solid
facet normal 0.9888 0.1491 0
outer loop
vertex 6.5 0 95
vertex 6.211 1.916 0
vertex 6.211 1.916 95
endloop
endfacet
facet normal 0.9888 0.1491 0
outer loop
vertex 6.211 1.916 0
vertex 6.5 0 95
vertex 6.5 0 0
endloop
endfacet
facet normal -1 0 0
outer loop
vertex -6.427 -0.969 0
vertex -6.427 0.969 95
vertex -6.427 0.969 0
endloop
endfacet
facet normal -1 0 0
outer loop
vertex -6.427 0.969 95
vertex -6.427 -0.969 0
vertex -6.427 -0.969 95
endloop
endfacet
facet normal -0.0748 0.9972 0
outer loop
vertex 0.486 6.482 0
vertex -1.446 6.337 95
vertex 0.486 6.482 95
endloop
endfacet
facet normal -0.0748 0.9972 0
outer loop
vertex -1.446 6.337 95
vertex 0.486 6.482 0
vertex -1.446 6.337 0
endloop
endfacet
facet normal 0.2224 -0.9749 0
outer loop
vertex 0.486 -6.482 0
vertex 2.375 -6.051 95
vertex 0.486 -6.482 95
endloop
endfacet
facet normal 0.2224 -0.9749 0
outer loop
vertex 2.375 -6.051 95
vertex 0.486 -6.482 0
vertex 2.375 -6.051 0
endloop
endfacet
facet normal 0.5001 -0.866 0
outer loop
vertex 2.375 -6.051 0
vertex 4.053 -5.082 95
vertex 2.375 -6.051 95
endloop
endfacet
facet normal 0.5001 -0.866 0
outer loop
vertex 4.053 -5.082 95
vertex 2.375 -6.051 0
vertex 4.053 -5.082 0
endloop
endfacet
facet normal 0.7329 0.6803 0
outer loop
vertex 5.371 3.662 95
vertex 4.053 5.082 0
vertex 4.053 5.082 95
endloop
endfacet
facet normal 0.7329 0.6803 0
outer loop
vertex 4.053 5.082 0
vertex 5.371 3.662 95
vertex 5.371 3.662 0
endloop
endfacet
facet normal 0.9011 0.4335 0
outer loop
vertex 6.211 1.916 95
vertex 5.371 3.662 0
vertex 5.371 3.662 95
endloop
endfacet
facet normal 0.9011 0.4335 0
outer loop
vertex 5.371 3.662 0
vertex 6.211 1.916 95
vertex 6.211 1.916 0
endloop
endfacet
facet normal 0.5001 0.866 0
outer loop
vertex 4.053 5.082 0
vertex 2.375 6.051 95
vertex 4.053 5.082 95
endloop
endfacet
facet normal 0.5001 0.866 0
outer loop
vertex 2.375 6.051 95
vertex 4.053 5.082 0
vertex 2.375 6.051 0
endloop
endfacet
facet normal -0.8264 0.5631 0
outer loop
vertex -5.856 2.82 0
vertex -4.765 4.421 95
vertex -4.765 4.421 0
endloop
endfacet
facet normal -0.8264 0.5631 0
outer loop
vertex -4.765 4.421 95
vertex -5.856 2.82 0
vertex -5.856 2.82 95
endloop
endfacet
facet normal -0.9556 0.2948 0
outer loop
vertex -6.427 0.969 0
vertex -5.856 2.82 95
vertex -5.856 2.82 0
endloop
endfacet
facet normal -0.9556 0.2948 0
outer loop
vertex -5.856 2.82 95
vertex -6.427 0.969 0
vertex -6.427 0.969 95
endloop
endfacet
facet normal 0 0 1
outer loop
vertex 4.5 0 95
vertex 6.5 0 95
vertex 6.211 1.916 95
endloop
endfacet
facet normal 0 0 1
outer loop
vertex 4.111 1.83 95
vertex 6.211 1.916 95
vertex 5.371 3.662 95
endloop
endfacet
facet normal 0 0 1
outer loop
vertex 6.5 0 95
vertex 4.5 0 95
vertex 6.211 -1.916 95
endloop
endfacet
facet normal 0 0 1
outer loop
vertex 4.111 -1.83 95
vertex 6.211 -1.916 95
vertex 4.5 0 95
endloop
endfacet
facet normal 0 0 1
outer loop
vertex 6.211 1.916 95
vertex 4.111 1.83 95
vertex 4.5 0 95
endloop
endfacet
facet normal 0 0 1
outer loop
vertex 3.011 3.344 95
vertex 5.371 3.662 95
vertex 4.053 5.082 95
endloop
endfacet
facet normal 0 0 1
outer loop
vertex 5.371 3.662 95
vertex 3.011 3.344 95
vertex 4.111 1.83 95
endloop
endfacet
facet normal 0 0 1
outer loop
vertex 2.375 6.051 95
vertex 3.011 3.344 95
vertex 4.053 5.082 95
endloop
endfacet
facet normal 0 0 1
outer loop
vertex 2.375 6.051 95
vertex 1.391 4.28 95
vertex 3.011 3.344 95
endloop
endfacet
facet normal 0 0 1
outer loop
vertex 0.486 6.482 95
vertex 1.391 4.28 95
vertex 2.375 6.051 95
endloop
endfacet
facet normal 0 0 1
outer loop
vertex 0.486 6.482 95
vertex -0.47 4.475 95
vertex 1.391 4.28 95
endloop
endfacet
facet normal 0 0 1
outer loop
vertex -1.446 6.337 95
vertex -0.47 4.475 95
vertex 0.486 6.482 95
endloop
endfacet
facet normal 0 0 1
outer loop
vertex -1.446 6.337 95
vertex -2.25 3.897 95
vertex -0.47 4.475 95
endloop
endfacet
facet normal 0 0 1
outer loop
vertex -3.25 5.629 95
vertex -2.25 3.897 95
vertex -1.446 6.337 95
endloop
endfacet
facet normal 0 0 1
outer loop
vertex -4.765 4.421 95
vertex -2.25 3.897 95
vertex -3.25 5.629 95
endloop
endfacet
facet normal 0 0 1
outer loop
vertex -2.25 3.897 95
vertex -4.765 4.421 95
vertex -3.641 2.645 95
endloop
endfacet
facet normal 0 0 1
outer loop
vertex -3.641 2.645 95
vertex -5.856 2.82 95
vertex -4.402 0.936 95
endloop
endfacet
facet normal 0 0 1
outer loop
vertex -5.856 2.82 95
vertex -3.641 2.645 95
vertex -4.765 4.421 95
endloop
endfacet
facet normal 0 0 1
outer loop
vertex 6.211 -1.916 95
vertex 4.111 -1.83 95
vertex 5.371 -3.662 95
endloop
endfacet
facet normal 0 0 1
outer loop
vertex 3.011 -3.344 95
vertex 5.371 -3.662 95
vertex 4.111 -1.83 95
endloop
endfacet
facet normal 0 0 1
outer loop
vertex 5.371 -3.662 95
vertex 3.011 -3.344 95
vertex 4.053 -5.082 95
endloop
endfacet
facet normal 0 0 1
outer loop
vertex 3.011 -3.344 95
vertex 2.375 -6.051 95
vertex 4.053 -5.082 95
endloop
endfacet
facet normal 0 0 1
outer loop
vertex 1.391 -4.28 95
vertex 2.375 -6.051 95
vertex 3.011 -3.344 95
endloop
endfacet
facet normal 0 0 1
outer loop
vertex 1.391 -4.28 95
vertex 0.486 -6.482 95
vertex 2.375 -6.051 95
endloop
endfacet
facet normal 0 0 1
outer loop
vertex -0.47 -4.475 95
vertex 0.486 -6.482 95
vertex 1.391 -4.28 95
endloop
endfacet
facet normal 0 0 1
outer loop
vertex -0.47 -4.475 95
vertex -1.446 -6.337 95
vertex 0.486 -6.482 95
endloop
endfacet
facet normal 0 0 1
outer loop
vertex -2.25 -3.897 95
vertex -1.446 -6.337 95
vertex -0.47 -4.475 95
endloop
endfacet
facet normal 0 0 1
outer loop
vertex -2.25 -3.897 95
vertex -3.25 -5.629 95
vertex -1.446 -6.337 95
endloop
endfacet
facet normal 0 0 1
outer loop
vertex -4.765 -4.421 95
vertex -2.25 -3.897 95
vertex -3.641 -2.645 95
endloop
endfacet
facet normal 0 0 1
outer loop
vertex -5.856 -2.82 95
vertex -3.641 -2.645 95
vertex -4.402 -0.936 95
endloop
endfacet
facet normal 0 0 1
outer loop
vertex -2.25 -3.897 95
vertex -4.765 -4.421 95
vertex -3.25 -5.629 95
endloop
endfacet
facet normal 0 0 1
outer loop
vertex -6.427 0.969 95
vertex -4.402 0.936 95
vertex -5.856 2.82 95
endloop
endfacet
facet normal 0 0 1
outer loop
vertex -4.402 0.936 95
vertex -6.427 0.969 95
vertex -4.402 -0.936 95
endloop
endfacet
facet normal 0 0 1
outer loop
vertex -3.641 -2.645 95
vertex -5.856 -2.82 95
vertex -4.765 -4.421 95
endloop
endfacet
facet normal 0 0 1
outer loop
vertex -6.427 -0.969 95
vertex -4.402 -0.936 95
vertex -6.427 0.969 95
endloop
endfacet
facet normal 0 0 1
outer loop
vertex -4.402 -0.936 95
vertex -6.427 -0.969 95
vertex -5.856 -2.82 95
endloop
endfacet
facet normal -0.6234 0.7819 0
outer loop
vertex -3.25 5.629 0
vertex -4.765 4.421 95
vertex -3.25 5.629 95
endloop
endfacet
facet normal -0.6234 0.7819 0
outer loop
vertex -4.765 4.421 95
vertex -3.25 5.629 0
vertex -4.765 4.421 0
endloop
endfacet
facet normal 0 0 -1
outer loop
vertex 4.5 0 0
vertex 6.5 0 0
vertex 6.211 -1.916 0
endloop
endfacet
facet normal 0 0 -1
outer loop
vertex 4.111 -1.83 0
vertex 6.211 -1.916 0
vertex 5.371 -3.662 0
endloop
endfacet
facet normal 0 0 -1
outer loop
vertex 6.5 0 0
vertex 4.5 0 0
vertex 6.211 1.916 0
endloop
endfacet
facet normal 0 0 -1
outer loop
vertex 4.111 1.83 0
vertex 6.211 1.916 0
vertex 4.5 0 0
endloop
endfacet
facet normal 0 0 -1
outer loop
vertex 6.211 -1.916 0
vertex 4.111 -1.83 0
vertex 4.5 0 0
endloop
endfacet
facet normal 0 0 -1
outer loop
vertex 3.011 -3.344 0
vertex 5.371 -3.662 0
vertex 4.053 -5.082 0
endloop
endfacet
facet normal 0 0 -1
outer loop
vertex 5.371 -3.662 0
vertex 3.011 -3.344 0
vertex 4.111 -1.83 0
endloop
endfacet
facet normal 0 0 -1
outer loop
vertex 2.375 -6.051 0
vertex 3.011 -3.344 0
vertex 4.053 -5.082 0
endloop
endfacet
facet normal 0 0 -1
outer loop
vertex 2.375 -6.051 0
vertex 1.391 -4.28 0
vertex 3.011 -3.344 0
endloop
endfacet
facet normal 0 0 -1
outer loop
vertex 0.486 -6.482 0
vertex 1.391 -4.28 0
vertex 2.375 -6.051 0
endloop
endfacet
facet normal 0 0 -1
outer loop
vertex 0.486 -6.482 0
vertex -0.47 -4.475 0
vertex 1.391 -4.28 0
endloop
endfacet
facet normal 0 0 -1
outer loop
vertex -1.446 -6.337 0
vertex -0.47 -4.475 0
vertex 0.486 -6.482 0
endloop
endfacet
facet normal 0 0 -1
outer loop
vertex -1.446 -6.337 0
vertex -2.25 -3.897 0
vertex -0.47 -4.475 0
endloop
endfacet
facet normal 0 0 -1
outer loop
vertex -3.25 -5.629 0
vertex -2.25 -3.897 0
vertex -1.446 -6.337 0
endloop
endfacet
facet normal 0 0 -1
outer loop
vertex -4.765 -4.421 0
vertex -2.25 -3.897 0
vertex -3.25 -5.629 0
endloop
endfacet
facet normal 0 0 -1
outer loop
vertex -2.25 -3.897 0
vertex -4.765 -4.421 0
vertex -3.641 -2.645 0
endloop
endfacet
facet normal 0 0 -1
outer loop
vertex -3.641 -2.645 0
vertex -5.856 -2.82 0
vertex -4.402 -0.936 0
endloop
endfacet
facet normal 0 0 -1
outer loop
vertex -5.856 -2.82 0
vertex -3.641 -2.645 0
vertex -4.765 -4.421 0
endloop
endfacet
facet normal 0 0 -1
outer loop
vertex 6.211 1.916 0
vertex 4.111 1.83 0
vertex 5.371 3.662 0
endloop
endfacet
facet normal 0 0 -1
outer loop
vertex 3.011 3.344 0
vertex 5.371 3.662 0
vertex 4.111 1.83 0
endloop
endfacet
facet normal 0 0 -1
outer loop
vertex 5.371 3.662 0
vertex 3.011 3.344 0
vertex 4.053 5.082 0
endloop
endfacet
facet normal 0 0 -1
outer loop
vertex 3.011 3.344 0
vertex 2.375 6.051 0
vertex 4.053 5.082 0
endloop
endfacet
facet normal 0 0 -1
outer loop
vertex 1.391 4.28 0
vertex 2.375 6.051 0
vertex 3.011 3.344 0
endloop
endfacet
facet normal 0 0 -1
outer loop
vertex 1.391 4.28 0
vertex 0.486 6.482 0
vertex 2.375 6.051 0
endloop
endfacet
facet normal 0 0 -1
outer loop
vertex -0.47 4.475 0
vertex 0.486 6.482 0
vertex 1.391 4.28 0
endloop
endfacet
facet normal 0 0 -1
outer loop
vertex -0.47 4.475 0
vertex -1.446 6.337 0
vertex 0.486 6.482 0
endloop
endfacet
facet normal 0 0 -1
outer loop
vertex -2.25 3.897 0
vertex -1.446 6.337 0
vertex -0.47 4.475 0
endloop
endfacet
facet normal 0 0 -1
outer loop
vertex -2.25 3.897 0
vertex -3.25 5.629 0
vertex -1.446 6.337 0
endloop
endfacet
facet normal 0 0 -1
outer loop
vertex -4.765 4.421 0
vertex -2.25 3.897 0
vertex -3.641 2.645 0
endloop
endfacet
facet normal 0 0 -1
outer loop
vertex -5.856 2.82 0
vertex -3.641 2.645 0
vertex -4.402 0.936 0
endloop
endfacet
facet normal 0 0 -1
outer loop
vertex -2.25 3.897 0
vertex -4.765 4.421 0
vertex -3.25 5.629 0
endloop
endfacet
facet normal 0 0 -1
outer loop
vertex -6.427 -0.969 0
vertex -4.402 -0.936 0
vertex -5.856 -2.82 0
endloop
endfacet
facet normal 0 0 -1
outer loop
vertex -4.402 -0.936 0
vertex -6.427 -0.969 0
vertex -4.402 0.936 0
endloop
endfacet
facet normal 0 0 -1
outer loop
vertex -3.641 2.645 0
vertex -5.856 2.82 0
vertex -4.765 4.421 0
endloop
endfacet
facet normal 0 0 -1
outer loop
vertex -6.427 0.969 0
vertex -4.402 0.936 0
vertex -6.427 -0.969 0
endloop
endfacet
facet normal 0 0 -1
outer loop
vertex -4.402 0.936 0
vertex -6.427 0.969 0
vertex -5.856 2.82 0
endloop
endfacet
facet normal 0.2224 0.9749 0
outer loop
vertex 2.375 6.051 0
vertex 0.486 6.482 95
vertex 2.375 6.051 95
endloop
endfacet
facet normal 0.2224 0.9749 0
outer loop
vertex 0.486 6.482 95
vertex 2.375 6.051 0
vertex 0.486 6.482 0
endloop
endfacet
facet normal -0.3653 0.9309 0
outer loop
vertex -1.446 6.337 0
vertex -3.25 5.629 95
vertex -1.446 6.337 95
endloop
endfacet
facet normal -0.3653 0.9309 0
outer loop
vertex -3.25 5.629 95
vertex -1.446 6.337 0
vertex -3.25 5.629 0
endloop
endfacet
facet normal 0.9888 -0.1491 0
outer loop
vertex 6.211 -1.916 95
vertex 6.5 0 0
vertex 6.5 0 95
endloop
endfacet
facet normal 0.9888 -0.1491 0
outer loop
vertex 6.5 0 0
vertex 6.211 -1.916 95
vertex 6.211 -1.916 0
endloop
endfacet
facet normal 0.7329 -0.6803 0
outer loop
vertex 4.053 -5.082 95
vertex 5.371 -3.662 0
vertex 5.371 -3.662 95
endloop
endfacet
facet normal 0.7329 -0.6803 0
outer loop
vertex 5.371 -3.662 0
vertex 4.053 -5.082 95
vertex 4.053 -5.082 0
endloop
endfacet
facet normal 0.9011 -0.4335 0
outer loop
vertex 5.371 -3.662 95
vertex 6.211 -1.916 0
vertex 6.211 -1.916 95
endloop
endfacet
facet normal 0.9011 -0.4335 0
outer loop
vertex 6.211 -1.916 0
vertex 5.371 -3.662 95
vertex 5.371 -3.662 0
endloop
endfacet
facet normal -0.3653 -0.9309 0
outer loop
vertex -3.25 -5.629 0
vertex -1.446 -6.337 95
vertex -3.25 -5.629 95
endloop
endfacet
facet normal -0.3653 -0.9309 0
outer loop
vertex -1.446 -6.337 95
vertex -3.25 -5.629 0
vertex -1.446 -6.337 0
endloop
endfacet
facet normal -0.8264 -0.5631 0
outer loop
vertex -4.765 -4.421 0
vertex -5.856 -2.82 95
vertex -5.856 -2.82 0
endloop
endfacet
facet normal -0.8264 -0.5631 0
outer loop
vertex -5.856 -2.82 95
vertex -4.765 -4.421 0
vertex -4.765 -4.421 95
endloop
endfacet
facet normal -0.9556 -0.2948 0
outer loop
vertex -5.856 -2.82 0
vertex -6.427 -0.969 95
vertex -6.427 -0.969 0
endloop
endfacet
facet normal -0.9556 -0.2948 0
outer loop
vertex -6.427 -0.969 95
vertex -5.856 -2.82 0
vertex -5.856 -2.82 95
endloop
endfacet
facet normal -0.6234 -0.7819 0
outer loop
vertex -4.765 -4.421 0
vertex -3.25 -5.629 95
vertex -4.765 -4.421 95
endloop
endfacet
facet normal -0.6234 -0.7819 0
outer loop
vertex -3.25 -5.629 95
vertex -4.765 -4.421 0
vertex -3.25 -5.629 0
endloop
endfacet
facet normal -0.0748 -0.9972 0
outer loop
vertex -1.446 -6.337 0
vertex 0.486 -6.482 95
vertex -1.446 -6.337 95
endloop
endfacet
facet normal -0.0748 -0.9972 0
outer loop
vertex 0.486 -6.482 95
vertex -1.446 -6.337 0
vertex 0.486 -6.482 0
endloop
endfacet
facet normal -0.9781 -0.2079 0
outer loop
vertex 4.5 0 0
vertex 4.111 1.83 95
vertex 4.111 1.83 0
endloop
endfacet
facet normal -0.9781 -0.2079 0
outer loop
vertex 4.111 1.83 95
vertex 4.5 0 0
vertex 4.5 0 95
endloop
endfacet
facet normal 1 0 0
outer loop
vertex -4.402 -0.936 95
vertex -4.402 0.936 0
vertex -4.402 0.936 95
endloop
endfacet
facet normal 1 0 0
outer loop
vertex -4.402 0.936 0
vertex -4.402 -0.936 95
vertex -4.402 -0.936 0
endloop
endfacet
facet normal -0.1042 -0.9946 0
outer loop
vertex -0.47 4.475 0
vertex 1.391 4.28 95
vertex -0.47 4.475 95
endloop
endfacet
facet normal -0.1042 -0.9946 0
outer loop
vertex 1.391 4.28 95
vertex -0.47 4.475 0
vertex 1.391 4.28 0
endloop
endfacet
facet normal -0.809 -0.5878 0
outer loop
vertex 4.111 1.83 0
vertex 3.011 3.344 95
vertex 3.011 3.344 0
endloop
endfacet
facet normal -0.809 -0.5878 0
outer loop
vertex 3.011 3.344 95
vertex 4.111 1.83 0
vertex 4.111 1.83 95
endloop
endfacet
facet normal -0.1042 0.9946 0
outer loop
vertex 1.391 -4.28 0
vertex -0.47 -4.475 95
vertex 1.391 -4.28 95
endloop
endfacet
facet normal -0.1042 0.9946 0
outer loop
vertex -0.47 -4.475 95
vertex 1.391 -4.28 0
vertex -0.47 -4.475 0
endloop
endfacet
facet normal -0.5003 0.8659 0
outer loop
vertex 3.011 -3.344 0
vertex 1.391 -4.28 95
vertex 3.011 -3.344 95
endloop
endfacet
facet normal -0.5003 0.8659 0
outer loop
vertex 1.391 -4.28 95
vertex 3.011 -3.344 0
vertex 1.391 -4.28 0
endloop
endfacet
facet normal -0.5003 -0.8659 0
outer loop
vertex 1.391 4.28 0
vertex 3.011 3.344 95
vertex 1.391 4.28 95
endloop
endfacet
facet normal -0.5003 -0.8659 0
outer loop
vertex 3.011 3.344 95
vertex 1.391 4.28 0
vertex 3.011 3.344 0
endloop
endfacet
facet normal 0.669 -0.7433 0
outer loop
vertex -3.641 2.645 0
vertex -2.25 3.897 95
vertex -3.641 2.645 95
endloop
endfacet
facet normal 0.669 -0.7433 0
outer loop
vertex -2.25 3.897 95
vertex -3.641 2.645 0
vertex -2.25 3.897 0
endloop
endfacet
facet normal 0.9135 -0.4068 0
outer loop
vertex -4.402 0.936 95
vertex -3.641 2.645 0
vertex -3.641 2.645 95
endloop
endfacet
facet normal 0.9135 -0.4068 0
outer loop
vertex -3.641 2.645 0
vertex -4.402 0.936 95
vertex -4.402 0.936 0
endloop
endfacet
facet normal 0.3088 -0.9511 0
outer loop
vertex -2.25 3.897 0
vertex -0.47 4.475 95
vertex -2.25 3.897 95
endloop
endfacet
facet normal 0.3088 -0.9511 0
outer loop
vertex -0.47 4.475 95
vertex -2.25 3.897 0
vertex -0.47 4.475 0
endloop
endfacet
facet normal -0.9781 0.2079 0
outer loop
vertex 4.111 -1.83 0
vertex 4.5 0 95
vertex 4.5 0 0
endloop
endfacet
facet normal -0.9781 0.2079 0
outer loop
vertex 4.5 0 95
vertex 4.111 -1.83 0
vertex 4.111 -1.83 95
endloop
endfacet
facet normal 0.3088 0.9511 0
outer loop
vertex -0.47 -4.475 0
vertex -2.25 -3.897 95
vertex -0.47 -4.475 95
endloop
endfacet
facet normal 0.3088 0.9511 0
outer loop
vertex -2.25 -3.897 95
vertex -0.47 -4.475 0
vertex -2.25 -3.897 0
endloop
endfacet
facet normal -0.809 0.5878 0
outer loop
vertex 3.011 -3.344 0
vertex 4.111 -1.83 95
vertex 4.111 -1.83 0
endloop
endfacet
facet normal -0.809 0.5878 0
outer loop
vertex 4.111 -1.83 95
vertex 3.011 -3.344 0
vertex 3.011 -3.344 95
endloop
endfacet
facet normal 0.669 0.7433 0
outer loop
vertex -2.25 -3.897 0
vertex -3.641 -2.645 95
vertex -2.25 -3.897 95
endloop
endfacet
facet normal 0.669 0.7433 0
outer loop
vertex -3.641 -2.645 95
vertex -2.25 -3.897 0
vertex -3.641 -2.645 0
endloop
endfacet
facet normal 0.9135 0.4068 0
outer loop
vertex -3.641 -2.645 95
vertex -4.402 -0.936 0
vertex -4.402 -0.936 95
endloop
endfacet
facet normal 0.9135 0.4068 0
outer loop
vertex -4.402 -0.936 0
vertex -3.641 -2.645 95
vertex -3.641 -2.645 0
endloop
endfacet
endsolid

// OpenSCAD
difference(){
    cylinder(h = 95, d = 13, center = false);
    cylinder(h = 95, d = 9, center = false);
}
